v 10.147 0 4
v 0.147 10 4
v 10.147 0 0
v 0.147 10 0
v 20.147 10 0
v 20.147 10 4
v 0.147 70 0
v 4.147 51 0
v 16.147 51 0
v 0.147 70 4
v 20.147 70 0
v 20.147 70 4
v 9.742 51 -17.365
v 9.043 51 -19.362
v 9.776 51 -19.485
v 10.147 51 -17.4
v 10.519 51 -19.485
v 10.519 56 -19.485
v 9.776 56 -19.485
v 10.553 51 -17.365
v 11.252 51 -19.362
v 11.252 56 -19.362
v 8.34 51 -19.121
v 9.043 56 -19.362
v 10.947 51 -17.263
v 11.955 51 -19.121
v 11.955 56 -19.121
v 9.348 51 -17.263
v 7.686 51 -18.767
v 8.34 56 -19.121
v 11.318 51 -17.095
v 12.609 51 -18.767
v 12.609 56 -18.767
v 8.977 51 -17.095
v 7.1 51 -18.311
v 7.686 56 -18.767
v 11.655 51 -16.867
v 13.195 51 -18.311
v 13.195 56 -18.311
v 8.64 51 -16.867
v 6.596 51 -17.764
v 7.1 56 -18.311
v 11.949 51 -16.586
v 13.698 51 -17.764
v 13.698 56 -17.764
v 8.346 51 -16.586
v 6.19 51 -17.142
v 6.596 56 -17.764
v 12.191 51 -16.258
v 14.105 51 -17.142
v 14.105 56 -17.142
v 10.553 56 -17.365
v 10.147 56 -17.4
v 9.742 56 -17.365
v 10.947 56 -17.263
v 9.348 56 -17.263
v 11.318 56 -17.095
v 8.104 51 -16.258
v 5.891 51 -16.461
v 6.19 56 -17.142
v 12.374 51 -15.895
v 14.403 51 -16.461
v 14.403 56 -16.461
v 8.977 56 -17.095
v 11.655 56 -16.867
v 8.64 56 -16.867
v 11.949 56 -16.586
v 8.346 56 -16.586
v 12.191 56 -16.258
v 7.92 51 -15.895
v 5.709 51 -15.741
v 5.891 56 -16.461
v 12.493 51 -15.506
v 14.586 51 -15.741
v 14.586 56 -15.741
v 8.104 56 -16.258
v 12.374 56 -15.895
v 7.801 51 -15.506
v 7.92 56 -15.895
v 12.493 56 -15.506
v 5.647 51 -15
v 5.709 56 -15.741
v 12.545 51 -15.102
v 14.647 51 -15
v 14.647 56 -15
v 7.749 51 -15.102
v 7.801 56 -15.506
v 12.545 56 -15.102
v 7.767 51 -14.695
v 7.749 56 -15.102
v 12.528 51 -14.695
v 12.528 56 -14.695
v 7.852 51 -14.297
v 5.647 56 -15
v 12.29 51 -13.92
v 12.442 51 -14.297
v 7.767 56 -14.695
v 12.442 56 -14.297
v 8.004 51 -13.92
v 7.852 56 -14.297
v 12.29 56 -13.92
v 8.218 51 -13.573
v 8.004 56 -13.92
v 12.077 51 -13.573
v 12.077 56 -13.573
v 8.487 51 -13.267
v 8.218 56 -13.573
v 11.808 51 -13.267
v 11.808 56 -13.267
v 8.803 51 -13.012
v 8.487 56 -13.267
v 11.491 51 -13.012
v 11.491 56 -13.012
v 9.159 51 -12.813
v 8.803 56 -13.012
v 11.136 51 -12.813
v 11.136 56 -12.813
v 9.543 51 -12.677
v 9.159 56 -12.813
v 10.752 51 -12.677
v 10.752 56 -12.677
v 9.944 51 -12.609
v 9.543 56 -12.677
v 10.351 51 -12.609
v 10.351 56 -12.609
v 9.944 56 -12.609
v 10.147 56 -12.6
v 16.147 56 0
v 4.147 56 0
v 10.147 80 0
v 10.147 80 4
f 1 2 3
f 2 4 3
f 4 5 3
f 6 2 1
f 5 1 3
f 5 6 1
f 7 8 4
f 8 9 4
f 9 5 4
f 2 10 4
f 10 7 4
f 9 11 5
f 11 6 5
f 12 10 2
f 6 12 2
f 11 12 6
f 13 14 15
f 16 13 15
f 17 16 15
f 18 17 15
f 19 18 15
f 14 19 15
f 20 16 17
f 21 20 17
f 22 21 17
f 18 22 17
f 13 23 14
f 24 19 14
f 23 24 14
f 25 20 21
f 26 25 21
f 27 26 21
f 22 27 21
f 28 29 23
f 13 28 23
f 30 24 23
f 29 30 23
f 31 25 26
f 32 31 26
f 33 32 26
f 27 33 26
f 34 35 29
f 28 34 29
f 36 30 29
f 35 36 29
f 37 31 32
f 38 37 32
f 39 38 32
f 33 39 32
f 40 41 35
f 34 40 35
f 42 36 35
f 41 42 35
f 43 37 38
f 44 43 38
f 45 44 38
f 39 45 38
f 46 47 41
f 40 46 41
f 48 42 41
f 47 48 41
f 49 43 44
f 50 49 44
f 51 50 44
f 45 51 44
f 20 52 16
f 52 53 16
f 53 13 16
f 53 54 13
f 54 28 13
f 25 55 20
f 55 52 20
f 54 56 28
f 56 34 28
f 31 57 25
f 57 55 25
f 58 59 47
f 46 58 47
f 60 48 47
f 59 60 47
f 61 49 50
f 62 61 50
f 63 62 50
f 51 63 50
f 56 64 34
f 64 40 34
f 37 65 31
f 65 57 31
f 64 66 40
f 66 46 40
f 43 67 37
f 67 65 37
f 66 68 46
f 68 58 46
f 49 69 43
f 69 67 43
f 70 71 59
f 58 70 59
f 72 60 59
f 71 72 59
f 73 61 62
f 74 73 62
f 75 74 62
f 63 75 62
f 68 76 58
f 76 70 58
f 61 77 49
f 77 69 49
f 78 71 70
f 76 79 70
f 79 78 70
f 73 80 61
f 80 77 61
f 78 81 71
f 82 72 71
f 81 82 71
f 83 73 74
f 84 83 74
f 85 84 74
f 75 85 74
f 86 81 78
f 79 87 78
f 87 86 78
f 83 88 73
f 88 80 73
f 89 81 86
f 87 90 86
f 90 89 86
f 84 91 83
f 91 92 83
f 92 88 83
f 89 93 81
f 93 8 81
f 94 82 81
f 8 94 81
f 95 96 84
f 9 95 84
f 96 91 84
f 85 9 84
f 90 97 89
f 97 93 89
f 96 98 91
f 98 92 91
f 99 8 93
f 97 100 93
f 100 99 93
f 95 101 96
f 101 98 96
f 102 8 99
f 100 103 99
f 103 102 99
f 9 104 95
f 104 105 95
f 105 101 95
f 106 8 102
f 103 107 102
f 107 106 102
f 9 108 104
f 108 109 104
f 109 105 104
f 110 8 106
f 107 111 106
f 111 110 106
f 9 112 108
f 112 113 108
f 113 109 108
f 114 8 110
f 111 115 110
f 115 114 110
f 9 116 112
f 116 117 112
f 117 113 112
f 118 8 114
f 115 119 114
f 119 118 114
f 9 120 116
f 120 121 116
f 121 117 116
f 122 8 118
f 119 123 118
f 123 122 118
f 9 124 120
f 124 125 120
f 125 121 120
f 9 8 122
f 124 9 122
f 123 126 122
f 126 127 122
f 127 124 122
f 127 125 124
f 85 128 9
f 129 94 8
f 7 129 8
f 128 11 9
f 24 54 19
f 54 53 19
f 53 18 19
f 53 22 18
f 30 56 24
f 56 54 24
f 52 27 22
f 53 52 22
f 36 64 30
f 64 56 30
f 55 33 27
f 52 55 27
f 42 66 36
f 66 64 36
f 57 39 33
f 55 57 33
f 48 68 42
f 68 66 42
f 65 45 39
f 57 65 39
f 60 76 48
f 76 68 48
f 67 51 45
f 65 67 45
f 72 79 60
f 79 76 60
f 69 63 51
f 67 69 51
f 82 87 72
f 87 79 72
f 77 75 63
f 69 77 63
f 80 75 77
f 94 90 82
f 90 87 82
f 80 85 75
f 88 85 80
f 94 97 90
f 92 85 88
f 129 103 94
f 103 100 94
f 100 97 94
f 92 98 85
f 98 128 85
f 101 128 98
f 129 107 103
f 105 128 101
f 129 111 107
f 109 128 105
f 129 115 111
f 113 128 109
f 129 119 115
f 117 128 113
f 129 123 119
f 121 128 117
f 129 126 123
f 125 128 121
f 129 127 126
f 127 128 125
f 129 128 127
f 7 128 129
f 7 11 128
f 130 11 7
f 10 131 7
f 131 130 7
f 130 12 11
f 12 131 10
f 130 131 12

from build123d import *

# Parameters (mm, degrees)
EXTRUDE_1_DEPTH     = 4
SKETCH_2_W          = 12
SKETCH_2_H          = 5
EXTRUDE_2_DEPTH     = 20
SKETCH_6_R          = 2.4
CUT_EXTRUDE_5_DEPTH = 21


with BuildPart() as part:
    # 草图1 → 凸台-拉伸1 (new body)
    with BuildSketch(Plane.XY):
        Polygon((0.147281285, 10), (0.147281285, 70), (10.147281285, 80), (20.147281285, 70), (20.147281285, 10), (10.147281285, 0), align=None)
    extrude(amount=EXTRUDE_1_DEPTH)

    # 草图2 → 凸台-拉伸2 (add)
    with BuildSketch(Plane(origin=(0, 0, 0), x_dir=(-1, 0, 0), z_dir=(0, 0, -1))):
        with Locations((-10.147281285, 53.5)):
            Rectangle(SKETCH_2_W, SKETCH_2_H)
    extrude(amount=EXTRUDE_2_DEPTH)

    # 草图6 → 切除-拉伸5 (cut)
    with BuildSketch(Plane.XZ.offset(-51)):
        with Locations(Location((10.147281285, -15, 0), (0, 0, 270))):
            Circle(SKETCH_6_R)
        with BuildLine():
            ThreePointArc((14.647281285, -15), (10.147281285, -19.5), (5.647281285, -15))
            Line((5.647281285, -15), (4.147281285, 0))
            Line((4.147281285, 0), (4.147281285, -20))
            Line((4.147281285, -20), (16.147281285, -20))
            Line((16.147281285, -20), (16.147281285, 0))
            Line((16.147281285, 0), (14.647281285, -15))
        make_face()
    extrude(amount=-CUT_EXTRUDE_5_DEPTH, mode=Mode.SUBTRACT)


solid = part.part
